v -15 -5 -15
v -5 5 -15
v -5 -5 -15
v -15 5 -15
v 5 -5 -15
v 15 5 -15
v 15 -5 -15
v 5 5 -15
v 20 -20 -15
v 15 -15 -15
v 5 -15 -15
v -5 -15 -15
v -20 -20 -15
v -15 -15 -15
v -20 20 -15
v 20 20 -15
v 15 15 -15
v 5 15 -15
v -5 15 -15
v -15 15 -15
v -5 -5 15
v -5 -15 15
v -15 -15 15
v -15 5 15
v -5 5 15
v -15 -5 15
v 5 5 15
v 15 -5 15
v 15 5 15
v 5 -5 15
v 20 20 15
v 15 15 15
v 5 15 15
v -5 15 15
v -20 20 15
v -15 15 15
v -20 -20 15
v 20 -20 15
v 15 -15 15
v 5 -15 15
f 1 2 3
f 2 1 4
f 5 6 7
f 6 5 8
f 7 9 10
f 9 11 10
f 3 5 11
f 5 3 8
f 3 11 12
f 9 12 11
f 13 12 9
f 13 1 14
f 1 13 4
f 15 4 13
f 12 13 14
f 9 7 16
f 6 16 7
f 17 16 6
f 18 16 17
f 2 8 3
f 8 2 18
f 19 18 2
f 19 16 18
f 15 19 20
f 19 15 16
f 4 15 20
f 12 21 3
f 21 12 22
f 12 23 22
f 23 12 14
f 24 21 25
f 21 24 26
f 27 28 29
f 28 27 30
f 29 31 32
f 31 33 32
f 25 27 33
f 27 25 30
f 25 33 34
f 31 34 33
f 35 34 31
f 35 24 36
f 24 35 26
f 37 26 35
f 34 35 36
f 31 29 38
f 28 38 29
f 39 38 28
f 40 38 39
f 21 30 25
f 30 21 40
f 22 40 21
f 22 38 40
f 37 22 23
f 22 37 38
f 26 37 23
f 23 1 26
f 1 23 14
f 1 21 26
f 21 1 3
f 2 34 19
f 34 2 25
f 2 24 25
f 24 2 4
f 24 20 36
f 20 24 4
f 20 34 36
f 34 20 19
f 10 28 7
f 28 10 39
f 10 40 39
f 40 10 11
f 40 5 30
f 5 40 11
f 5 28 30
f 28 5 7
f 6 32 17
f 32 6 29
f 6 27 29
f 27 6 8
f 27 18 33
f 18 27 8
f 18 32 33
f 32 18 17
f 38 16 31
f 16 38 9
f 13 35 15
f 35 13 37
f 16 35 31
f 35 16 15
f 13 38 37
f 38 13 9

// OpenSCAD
// Parameters
block_width = 40;
block_depth = 40;
block_height = 30;

hole_size = 10; // size of the square base of the pyramid
hole_spacing = 20; // center-to-center spacing between holes
hole_height = block_height; // through-hole

module hollow_block() {
    difference() {
        // Main block
        cube([block_width, block_depth, block_height], center = true);

        // Pyramidal holes
        for (x = [-hole_spacing/2, hole_spacing/2])
            for (y = [-hole_spacing/2, hole_spacing/2])
                translate([x, y, 0])
                    pyramid_hole();
    }
}

// Module to create a square pyramidal hole
module pyramid_hole() {
    translate([0, 0, -block_height/2])
        rotate([0, 0, 0])
            linear_extrude(height = hole_height)
                polygon(points=[[ -hole_size/2, -hole_size/2],
                                [  hole_size/2, -hole_size/2],
                                [  hole_size/2,  hole_size/2],
                                [ -hole_size/2,  hole_size/2]],
                        paths=[[0,1,2,3]]);
}

// Render the model
hollow_block();
